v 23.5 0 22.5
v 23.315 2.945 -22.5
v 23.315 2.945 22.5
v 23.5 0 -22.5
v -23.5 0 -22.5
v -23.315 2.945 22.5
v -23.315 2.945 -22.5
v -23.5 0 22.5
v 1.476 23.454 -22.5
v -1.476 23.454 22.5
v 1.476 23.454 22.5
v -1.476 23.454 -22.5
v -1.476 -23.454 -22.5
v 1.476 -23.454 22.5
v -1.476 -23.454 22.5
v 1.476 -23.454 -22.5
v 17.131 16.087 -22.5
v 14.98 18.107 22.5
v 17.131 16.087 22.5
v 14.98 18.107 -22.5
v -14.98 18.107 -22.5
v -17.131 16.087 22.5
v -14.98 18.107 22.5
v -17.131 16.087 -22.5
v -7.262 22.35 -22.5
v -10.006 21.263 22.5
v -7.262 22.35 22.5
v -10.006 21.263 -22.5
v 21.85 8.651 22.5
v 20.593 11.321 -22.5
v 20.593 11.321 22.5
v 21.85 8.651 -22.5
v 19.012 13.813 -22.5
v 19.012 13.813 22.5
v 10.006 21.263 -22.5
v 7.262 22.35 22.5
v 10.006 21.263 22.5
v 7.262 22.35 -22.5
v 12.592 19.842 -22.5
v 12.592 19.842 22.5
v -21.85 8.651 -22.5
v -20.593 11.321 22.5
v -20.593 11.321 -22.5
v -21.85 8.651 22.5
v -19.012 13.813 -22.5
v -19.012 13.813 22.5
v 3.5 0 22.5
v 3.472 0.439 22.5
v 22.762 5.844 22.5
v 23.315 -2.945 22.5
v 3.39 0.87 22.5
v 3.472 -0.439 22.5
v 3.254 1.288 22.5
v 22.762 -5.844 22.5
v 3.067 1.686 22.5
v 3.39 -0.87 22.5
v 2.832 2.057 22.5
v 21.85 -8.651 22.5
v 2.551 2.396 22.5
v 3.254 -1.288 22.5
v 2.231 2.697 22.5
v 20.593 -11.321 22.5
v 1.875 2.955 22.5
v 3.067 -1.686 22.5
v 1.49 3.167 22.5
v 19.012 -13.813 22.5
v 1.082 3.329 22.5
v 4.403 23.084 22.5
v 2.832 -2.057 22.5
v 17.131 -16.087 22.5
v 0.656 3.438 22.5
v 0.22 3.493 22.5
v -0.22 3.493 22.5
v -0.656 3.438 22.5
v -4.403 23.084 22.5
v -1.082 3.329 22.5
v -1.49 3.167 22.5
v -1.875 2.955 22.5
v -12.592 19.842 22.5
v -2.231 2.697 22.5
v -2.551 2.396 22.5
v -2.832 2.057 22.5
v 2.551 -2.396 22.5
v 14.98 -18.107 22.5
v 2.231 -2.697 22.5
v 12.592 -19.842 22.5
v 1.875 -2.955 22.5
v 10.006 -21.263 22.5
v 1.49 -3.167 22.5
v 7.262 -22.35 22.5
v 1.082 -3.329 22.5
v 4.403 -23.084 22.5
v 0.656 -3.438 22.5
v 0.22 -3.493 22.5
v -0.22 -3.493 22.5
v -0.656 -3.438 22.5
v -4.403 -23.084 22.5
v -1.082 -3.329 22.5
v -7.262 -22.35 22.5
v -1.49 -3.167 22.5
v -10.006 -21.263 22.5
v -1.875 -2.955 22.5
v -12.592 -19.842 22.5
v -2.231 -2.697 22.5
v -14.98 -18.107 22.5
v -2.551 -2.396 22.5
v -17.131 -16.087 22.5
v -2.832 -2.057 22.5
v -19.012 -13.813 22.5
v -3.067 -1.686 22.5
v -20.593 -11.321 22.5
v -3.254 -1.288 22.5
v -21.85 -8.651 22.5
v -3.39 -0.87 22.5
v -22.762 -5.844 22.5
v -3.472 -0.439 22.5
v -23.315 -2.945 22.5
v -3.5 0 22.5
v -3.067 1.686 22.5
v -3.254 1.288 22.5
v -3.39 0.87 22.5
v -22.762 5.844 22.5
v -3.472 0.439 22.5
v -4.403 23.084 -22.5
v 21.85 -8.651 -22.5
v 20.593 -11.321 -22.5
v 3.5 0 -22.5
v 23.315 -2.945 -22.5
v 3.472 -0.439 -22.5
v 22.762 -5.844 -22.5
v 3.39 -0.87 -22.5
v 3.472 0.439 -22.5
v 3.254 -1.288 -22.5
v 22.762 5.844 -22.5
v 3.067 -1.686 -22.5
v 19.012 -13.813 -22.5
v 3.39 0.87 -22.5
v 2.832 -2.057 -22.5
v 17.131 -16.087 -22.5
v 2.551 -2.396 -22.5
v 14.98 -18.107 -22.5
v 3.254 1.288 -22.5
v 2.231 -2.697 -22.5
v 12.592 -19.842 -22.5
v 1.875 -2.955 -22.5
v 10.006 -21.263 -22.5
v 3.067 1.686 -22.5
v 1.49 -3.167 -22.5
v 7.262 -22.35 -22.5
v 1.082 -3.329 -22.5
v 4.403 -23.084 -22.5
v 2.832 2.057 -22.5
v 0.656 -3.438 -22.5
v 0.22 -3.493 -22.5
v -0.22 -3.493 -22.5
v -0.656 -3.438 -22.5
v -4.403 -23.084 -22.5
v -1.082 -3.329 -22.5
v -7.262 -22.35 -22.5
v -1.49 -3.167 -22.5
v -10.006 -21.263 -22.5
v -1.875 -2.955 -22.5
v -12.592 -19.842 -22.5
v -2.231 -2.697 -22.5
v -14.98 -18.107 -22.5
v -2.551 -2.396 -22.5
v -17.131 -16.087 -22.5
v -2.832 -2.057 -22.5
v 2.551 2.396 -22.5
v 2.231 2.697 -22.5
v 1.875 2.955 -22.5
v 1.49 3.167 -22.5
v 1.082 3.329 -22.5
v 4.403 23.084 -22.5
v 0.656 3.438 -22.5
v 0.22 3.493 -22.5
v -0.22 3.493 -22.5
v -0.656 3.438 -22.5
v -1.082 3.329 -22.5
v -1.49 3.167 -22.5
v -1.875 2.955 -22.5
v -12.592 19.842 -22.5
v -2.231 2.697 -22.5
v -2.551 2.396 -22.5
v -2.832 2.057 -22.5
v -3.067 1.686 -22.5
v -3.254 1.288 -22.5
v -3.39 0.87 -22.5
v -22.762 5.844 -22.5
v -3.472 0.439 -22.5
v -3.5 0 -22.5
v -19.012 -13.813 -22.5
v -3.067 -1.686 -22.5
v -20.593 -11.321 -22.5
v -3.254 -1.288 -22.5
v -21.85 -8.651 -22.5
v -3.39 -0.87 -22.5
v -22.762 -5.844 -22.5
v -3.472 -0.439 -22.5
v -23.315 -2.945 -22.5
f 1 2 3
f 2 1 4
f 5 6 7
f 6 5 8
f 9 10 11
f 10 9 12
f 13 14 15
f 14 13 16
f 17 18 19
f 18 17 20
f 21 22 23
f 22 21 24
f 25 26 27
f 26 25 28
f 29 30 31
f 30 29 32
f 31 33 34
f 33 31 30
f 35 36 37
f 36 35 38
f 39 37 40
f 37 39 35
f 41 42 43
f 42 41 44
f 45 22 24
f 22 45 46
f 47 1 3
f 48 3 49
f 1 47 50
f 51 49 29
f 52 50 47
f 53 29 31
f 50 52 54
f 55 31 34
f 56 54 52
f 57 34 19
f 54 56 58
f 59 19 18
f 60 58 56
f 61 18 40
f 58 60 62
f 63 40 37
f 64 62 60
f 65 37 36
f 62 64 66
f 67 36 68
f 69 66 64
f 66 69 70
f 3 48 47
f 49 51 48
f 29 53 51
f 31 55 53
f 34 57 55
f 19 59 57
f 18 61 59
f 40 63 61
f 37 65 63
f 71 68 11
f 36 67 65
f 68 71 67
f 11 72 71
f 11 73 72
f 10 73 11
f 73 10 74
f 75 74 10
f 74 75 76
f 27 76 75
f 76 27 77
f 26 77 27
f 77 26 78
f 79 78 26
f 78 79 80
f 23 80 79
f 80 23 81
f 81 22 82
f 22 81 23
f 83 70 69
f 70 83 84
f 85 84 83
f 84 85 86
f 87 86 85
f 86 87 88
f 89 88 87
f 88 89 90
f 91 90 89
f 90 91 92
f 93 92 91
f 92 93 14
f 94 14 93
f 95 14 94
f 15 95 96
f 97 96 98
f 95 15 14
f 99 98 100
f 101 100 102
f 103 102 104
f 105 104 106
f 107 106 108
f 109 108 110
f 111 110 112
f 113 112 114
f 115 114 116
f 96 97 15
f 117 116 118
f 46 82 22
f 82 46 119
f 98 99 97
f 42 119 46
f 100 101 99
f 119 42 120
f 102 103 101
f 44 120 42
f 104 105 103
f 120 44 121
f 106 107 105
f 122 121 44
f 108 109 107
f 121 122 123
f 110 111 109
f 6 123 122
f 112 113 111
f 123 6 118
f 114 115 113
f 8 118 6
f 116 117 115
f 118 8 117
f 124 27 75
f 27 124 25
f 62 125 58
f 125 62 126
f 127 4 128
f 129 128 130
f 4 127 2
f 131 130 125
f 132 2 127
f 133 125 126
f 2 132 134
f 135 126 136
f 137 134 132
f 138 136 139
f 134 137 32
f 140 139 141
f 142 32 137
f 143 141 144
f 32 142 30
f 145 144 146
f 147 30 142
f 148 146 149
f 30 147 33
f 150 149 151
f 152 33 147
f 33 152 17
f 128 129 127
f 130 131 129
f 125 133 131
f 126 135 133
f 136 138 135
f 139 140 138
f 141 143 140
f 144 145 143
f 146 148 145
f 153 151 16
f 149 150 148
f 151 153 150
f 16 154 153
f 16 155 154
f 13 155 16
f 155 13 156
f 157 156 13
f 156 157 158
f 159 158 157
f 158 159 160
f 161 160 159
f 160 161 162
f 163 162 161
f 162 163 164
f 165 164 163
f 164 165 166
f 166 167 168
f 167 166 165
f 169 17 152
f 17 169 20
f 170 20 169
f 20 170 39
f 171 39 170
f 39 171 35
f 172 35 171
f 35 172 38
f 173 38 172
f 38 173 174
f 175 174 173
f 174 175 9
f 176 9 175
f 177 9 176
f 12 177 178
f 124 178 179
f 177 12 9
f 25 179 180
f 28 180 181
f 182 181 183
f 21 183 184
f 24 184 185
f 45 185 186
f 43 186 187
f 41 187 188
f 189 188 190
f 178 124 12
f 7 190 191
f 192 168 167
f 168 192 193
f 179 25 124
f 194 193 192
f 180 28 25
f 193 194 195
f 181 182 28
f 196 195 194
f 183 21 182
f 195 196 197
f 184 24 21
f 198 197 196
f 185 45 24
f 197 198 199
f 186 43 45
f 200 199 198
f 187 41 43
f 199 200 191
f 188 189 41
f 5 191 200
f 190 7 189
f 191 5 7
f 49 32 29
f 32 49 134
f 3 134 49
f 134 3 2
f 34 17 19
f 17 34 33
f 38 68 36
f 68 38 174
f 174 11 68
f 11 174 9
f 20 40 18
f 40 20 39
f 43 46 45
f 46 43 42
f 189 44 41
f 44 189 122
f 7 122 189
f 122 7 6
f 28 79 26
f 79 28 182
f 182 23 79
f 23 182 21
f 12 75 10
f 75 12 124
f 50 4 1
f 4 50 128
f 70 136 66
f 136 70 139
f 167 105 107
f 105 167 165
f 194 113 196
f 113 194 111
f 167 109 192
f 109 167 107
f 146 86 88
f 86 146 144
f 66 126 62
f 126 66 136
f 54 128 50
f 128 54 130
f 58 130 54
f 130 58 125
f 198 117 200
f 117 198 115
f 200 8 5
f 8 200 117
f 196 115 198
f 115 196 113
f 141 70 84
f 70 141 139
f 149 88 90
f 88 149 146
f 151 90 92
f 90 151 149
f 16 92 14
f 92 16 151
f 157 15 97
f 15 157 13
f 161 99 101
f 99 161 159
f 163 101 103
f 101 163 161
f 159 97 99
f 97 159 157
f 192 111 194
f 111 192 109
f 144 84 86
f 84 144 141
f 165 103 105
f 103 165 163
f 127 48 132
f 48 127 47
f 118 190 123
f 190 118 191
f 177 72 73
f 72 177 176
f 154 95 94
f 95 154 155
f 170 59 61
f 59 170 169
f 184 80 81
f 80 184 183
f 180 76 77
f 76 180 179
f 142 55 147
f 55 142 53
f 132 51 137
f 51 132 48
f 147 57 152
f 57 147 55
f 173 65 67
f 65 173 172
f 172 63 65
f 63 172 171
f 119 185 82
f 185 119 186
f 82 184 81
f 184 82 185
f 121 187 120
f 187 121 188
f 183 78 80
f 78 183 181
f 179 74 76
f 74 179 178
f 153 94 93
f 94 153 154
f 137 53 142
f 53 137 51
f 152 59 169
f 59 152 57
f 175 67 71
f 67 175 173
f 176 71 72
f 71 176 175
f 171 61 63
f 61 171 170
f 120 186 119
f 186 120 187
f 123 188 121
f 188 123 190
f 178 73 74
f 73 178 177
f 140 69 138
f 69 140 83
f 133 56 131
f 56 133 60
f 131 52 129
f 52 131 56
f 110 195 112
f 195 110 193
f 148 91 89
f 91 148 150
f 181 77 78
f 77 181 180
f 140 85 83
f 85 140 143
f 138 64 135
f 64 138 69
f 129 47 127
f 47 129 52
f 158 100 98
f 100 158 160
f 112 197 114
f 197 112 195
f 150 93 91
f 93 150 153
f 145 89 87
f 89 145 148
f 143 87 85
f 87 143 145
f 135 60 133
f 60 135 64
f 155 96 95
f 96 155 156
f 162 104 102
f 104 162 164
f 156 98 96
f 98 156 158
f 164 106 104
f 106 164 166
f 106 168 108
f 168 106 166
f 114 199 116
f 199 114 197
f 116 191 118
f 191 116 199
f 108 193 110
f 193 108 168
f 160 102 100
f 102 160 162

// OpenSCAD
$fn = 50;


difference() {
	union() {
		translate(v = [0, 0, -22.5000000000]) {
			cylinder(h = 45, r = 23.5000000000);
		}
	}
	union() {
		translate(v = [0, 0, -100.0000000000]) {
			cylinder(h = 200, r = 3.5000000000);
		}
	}
}
